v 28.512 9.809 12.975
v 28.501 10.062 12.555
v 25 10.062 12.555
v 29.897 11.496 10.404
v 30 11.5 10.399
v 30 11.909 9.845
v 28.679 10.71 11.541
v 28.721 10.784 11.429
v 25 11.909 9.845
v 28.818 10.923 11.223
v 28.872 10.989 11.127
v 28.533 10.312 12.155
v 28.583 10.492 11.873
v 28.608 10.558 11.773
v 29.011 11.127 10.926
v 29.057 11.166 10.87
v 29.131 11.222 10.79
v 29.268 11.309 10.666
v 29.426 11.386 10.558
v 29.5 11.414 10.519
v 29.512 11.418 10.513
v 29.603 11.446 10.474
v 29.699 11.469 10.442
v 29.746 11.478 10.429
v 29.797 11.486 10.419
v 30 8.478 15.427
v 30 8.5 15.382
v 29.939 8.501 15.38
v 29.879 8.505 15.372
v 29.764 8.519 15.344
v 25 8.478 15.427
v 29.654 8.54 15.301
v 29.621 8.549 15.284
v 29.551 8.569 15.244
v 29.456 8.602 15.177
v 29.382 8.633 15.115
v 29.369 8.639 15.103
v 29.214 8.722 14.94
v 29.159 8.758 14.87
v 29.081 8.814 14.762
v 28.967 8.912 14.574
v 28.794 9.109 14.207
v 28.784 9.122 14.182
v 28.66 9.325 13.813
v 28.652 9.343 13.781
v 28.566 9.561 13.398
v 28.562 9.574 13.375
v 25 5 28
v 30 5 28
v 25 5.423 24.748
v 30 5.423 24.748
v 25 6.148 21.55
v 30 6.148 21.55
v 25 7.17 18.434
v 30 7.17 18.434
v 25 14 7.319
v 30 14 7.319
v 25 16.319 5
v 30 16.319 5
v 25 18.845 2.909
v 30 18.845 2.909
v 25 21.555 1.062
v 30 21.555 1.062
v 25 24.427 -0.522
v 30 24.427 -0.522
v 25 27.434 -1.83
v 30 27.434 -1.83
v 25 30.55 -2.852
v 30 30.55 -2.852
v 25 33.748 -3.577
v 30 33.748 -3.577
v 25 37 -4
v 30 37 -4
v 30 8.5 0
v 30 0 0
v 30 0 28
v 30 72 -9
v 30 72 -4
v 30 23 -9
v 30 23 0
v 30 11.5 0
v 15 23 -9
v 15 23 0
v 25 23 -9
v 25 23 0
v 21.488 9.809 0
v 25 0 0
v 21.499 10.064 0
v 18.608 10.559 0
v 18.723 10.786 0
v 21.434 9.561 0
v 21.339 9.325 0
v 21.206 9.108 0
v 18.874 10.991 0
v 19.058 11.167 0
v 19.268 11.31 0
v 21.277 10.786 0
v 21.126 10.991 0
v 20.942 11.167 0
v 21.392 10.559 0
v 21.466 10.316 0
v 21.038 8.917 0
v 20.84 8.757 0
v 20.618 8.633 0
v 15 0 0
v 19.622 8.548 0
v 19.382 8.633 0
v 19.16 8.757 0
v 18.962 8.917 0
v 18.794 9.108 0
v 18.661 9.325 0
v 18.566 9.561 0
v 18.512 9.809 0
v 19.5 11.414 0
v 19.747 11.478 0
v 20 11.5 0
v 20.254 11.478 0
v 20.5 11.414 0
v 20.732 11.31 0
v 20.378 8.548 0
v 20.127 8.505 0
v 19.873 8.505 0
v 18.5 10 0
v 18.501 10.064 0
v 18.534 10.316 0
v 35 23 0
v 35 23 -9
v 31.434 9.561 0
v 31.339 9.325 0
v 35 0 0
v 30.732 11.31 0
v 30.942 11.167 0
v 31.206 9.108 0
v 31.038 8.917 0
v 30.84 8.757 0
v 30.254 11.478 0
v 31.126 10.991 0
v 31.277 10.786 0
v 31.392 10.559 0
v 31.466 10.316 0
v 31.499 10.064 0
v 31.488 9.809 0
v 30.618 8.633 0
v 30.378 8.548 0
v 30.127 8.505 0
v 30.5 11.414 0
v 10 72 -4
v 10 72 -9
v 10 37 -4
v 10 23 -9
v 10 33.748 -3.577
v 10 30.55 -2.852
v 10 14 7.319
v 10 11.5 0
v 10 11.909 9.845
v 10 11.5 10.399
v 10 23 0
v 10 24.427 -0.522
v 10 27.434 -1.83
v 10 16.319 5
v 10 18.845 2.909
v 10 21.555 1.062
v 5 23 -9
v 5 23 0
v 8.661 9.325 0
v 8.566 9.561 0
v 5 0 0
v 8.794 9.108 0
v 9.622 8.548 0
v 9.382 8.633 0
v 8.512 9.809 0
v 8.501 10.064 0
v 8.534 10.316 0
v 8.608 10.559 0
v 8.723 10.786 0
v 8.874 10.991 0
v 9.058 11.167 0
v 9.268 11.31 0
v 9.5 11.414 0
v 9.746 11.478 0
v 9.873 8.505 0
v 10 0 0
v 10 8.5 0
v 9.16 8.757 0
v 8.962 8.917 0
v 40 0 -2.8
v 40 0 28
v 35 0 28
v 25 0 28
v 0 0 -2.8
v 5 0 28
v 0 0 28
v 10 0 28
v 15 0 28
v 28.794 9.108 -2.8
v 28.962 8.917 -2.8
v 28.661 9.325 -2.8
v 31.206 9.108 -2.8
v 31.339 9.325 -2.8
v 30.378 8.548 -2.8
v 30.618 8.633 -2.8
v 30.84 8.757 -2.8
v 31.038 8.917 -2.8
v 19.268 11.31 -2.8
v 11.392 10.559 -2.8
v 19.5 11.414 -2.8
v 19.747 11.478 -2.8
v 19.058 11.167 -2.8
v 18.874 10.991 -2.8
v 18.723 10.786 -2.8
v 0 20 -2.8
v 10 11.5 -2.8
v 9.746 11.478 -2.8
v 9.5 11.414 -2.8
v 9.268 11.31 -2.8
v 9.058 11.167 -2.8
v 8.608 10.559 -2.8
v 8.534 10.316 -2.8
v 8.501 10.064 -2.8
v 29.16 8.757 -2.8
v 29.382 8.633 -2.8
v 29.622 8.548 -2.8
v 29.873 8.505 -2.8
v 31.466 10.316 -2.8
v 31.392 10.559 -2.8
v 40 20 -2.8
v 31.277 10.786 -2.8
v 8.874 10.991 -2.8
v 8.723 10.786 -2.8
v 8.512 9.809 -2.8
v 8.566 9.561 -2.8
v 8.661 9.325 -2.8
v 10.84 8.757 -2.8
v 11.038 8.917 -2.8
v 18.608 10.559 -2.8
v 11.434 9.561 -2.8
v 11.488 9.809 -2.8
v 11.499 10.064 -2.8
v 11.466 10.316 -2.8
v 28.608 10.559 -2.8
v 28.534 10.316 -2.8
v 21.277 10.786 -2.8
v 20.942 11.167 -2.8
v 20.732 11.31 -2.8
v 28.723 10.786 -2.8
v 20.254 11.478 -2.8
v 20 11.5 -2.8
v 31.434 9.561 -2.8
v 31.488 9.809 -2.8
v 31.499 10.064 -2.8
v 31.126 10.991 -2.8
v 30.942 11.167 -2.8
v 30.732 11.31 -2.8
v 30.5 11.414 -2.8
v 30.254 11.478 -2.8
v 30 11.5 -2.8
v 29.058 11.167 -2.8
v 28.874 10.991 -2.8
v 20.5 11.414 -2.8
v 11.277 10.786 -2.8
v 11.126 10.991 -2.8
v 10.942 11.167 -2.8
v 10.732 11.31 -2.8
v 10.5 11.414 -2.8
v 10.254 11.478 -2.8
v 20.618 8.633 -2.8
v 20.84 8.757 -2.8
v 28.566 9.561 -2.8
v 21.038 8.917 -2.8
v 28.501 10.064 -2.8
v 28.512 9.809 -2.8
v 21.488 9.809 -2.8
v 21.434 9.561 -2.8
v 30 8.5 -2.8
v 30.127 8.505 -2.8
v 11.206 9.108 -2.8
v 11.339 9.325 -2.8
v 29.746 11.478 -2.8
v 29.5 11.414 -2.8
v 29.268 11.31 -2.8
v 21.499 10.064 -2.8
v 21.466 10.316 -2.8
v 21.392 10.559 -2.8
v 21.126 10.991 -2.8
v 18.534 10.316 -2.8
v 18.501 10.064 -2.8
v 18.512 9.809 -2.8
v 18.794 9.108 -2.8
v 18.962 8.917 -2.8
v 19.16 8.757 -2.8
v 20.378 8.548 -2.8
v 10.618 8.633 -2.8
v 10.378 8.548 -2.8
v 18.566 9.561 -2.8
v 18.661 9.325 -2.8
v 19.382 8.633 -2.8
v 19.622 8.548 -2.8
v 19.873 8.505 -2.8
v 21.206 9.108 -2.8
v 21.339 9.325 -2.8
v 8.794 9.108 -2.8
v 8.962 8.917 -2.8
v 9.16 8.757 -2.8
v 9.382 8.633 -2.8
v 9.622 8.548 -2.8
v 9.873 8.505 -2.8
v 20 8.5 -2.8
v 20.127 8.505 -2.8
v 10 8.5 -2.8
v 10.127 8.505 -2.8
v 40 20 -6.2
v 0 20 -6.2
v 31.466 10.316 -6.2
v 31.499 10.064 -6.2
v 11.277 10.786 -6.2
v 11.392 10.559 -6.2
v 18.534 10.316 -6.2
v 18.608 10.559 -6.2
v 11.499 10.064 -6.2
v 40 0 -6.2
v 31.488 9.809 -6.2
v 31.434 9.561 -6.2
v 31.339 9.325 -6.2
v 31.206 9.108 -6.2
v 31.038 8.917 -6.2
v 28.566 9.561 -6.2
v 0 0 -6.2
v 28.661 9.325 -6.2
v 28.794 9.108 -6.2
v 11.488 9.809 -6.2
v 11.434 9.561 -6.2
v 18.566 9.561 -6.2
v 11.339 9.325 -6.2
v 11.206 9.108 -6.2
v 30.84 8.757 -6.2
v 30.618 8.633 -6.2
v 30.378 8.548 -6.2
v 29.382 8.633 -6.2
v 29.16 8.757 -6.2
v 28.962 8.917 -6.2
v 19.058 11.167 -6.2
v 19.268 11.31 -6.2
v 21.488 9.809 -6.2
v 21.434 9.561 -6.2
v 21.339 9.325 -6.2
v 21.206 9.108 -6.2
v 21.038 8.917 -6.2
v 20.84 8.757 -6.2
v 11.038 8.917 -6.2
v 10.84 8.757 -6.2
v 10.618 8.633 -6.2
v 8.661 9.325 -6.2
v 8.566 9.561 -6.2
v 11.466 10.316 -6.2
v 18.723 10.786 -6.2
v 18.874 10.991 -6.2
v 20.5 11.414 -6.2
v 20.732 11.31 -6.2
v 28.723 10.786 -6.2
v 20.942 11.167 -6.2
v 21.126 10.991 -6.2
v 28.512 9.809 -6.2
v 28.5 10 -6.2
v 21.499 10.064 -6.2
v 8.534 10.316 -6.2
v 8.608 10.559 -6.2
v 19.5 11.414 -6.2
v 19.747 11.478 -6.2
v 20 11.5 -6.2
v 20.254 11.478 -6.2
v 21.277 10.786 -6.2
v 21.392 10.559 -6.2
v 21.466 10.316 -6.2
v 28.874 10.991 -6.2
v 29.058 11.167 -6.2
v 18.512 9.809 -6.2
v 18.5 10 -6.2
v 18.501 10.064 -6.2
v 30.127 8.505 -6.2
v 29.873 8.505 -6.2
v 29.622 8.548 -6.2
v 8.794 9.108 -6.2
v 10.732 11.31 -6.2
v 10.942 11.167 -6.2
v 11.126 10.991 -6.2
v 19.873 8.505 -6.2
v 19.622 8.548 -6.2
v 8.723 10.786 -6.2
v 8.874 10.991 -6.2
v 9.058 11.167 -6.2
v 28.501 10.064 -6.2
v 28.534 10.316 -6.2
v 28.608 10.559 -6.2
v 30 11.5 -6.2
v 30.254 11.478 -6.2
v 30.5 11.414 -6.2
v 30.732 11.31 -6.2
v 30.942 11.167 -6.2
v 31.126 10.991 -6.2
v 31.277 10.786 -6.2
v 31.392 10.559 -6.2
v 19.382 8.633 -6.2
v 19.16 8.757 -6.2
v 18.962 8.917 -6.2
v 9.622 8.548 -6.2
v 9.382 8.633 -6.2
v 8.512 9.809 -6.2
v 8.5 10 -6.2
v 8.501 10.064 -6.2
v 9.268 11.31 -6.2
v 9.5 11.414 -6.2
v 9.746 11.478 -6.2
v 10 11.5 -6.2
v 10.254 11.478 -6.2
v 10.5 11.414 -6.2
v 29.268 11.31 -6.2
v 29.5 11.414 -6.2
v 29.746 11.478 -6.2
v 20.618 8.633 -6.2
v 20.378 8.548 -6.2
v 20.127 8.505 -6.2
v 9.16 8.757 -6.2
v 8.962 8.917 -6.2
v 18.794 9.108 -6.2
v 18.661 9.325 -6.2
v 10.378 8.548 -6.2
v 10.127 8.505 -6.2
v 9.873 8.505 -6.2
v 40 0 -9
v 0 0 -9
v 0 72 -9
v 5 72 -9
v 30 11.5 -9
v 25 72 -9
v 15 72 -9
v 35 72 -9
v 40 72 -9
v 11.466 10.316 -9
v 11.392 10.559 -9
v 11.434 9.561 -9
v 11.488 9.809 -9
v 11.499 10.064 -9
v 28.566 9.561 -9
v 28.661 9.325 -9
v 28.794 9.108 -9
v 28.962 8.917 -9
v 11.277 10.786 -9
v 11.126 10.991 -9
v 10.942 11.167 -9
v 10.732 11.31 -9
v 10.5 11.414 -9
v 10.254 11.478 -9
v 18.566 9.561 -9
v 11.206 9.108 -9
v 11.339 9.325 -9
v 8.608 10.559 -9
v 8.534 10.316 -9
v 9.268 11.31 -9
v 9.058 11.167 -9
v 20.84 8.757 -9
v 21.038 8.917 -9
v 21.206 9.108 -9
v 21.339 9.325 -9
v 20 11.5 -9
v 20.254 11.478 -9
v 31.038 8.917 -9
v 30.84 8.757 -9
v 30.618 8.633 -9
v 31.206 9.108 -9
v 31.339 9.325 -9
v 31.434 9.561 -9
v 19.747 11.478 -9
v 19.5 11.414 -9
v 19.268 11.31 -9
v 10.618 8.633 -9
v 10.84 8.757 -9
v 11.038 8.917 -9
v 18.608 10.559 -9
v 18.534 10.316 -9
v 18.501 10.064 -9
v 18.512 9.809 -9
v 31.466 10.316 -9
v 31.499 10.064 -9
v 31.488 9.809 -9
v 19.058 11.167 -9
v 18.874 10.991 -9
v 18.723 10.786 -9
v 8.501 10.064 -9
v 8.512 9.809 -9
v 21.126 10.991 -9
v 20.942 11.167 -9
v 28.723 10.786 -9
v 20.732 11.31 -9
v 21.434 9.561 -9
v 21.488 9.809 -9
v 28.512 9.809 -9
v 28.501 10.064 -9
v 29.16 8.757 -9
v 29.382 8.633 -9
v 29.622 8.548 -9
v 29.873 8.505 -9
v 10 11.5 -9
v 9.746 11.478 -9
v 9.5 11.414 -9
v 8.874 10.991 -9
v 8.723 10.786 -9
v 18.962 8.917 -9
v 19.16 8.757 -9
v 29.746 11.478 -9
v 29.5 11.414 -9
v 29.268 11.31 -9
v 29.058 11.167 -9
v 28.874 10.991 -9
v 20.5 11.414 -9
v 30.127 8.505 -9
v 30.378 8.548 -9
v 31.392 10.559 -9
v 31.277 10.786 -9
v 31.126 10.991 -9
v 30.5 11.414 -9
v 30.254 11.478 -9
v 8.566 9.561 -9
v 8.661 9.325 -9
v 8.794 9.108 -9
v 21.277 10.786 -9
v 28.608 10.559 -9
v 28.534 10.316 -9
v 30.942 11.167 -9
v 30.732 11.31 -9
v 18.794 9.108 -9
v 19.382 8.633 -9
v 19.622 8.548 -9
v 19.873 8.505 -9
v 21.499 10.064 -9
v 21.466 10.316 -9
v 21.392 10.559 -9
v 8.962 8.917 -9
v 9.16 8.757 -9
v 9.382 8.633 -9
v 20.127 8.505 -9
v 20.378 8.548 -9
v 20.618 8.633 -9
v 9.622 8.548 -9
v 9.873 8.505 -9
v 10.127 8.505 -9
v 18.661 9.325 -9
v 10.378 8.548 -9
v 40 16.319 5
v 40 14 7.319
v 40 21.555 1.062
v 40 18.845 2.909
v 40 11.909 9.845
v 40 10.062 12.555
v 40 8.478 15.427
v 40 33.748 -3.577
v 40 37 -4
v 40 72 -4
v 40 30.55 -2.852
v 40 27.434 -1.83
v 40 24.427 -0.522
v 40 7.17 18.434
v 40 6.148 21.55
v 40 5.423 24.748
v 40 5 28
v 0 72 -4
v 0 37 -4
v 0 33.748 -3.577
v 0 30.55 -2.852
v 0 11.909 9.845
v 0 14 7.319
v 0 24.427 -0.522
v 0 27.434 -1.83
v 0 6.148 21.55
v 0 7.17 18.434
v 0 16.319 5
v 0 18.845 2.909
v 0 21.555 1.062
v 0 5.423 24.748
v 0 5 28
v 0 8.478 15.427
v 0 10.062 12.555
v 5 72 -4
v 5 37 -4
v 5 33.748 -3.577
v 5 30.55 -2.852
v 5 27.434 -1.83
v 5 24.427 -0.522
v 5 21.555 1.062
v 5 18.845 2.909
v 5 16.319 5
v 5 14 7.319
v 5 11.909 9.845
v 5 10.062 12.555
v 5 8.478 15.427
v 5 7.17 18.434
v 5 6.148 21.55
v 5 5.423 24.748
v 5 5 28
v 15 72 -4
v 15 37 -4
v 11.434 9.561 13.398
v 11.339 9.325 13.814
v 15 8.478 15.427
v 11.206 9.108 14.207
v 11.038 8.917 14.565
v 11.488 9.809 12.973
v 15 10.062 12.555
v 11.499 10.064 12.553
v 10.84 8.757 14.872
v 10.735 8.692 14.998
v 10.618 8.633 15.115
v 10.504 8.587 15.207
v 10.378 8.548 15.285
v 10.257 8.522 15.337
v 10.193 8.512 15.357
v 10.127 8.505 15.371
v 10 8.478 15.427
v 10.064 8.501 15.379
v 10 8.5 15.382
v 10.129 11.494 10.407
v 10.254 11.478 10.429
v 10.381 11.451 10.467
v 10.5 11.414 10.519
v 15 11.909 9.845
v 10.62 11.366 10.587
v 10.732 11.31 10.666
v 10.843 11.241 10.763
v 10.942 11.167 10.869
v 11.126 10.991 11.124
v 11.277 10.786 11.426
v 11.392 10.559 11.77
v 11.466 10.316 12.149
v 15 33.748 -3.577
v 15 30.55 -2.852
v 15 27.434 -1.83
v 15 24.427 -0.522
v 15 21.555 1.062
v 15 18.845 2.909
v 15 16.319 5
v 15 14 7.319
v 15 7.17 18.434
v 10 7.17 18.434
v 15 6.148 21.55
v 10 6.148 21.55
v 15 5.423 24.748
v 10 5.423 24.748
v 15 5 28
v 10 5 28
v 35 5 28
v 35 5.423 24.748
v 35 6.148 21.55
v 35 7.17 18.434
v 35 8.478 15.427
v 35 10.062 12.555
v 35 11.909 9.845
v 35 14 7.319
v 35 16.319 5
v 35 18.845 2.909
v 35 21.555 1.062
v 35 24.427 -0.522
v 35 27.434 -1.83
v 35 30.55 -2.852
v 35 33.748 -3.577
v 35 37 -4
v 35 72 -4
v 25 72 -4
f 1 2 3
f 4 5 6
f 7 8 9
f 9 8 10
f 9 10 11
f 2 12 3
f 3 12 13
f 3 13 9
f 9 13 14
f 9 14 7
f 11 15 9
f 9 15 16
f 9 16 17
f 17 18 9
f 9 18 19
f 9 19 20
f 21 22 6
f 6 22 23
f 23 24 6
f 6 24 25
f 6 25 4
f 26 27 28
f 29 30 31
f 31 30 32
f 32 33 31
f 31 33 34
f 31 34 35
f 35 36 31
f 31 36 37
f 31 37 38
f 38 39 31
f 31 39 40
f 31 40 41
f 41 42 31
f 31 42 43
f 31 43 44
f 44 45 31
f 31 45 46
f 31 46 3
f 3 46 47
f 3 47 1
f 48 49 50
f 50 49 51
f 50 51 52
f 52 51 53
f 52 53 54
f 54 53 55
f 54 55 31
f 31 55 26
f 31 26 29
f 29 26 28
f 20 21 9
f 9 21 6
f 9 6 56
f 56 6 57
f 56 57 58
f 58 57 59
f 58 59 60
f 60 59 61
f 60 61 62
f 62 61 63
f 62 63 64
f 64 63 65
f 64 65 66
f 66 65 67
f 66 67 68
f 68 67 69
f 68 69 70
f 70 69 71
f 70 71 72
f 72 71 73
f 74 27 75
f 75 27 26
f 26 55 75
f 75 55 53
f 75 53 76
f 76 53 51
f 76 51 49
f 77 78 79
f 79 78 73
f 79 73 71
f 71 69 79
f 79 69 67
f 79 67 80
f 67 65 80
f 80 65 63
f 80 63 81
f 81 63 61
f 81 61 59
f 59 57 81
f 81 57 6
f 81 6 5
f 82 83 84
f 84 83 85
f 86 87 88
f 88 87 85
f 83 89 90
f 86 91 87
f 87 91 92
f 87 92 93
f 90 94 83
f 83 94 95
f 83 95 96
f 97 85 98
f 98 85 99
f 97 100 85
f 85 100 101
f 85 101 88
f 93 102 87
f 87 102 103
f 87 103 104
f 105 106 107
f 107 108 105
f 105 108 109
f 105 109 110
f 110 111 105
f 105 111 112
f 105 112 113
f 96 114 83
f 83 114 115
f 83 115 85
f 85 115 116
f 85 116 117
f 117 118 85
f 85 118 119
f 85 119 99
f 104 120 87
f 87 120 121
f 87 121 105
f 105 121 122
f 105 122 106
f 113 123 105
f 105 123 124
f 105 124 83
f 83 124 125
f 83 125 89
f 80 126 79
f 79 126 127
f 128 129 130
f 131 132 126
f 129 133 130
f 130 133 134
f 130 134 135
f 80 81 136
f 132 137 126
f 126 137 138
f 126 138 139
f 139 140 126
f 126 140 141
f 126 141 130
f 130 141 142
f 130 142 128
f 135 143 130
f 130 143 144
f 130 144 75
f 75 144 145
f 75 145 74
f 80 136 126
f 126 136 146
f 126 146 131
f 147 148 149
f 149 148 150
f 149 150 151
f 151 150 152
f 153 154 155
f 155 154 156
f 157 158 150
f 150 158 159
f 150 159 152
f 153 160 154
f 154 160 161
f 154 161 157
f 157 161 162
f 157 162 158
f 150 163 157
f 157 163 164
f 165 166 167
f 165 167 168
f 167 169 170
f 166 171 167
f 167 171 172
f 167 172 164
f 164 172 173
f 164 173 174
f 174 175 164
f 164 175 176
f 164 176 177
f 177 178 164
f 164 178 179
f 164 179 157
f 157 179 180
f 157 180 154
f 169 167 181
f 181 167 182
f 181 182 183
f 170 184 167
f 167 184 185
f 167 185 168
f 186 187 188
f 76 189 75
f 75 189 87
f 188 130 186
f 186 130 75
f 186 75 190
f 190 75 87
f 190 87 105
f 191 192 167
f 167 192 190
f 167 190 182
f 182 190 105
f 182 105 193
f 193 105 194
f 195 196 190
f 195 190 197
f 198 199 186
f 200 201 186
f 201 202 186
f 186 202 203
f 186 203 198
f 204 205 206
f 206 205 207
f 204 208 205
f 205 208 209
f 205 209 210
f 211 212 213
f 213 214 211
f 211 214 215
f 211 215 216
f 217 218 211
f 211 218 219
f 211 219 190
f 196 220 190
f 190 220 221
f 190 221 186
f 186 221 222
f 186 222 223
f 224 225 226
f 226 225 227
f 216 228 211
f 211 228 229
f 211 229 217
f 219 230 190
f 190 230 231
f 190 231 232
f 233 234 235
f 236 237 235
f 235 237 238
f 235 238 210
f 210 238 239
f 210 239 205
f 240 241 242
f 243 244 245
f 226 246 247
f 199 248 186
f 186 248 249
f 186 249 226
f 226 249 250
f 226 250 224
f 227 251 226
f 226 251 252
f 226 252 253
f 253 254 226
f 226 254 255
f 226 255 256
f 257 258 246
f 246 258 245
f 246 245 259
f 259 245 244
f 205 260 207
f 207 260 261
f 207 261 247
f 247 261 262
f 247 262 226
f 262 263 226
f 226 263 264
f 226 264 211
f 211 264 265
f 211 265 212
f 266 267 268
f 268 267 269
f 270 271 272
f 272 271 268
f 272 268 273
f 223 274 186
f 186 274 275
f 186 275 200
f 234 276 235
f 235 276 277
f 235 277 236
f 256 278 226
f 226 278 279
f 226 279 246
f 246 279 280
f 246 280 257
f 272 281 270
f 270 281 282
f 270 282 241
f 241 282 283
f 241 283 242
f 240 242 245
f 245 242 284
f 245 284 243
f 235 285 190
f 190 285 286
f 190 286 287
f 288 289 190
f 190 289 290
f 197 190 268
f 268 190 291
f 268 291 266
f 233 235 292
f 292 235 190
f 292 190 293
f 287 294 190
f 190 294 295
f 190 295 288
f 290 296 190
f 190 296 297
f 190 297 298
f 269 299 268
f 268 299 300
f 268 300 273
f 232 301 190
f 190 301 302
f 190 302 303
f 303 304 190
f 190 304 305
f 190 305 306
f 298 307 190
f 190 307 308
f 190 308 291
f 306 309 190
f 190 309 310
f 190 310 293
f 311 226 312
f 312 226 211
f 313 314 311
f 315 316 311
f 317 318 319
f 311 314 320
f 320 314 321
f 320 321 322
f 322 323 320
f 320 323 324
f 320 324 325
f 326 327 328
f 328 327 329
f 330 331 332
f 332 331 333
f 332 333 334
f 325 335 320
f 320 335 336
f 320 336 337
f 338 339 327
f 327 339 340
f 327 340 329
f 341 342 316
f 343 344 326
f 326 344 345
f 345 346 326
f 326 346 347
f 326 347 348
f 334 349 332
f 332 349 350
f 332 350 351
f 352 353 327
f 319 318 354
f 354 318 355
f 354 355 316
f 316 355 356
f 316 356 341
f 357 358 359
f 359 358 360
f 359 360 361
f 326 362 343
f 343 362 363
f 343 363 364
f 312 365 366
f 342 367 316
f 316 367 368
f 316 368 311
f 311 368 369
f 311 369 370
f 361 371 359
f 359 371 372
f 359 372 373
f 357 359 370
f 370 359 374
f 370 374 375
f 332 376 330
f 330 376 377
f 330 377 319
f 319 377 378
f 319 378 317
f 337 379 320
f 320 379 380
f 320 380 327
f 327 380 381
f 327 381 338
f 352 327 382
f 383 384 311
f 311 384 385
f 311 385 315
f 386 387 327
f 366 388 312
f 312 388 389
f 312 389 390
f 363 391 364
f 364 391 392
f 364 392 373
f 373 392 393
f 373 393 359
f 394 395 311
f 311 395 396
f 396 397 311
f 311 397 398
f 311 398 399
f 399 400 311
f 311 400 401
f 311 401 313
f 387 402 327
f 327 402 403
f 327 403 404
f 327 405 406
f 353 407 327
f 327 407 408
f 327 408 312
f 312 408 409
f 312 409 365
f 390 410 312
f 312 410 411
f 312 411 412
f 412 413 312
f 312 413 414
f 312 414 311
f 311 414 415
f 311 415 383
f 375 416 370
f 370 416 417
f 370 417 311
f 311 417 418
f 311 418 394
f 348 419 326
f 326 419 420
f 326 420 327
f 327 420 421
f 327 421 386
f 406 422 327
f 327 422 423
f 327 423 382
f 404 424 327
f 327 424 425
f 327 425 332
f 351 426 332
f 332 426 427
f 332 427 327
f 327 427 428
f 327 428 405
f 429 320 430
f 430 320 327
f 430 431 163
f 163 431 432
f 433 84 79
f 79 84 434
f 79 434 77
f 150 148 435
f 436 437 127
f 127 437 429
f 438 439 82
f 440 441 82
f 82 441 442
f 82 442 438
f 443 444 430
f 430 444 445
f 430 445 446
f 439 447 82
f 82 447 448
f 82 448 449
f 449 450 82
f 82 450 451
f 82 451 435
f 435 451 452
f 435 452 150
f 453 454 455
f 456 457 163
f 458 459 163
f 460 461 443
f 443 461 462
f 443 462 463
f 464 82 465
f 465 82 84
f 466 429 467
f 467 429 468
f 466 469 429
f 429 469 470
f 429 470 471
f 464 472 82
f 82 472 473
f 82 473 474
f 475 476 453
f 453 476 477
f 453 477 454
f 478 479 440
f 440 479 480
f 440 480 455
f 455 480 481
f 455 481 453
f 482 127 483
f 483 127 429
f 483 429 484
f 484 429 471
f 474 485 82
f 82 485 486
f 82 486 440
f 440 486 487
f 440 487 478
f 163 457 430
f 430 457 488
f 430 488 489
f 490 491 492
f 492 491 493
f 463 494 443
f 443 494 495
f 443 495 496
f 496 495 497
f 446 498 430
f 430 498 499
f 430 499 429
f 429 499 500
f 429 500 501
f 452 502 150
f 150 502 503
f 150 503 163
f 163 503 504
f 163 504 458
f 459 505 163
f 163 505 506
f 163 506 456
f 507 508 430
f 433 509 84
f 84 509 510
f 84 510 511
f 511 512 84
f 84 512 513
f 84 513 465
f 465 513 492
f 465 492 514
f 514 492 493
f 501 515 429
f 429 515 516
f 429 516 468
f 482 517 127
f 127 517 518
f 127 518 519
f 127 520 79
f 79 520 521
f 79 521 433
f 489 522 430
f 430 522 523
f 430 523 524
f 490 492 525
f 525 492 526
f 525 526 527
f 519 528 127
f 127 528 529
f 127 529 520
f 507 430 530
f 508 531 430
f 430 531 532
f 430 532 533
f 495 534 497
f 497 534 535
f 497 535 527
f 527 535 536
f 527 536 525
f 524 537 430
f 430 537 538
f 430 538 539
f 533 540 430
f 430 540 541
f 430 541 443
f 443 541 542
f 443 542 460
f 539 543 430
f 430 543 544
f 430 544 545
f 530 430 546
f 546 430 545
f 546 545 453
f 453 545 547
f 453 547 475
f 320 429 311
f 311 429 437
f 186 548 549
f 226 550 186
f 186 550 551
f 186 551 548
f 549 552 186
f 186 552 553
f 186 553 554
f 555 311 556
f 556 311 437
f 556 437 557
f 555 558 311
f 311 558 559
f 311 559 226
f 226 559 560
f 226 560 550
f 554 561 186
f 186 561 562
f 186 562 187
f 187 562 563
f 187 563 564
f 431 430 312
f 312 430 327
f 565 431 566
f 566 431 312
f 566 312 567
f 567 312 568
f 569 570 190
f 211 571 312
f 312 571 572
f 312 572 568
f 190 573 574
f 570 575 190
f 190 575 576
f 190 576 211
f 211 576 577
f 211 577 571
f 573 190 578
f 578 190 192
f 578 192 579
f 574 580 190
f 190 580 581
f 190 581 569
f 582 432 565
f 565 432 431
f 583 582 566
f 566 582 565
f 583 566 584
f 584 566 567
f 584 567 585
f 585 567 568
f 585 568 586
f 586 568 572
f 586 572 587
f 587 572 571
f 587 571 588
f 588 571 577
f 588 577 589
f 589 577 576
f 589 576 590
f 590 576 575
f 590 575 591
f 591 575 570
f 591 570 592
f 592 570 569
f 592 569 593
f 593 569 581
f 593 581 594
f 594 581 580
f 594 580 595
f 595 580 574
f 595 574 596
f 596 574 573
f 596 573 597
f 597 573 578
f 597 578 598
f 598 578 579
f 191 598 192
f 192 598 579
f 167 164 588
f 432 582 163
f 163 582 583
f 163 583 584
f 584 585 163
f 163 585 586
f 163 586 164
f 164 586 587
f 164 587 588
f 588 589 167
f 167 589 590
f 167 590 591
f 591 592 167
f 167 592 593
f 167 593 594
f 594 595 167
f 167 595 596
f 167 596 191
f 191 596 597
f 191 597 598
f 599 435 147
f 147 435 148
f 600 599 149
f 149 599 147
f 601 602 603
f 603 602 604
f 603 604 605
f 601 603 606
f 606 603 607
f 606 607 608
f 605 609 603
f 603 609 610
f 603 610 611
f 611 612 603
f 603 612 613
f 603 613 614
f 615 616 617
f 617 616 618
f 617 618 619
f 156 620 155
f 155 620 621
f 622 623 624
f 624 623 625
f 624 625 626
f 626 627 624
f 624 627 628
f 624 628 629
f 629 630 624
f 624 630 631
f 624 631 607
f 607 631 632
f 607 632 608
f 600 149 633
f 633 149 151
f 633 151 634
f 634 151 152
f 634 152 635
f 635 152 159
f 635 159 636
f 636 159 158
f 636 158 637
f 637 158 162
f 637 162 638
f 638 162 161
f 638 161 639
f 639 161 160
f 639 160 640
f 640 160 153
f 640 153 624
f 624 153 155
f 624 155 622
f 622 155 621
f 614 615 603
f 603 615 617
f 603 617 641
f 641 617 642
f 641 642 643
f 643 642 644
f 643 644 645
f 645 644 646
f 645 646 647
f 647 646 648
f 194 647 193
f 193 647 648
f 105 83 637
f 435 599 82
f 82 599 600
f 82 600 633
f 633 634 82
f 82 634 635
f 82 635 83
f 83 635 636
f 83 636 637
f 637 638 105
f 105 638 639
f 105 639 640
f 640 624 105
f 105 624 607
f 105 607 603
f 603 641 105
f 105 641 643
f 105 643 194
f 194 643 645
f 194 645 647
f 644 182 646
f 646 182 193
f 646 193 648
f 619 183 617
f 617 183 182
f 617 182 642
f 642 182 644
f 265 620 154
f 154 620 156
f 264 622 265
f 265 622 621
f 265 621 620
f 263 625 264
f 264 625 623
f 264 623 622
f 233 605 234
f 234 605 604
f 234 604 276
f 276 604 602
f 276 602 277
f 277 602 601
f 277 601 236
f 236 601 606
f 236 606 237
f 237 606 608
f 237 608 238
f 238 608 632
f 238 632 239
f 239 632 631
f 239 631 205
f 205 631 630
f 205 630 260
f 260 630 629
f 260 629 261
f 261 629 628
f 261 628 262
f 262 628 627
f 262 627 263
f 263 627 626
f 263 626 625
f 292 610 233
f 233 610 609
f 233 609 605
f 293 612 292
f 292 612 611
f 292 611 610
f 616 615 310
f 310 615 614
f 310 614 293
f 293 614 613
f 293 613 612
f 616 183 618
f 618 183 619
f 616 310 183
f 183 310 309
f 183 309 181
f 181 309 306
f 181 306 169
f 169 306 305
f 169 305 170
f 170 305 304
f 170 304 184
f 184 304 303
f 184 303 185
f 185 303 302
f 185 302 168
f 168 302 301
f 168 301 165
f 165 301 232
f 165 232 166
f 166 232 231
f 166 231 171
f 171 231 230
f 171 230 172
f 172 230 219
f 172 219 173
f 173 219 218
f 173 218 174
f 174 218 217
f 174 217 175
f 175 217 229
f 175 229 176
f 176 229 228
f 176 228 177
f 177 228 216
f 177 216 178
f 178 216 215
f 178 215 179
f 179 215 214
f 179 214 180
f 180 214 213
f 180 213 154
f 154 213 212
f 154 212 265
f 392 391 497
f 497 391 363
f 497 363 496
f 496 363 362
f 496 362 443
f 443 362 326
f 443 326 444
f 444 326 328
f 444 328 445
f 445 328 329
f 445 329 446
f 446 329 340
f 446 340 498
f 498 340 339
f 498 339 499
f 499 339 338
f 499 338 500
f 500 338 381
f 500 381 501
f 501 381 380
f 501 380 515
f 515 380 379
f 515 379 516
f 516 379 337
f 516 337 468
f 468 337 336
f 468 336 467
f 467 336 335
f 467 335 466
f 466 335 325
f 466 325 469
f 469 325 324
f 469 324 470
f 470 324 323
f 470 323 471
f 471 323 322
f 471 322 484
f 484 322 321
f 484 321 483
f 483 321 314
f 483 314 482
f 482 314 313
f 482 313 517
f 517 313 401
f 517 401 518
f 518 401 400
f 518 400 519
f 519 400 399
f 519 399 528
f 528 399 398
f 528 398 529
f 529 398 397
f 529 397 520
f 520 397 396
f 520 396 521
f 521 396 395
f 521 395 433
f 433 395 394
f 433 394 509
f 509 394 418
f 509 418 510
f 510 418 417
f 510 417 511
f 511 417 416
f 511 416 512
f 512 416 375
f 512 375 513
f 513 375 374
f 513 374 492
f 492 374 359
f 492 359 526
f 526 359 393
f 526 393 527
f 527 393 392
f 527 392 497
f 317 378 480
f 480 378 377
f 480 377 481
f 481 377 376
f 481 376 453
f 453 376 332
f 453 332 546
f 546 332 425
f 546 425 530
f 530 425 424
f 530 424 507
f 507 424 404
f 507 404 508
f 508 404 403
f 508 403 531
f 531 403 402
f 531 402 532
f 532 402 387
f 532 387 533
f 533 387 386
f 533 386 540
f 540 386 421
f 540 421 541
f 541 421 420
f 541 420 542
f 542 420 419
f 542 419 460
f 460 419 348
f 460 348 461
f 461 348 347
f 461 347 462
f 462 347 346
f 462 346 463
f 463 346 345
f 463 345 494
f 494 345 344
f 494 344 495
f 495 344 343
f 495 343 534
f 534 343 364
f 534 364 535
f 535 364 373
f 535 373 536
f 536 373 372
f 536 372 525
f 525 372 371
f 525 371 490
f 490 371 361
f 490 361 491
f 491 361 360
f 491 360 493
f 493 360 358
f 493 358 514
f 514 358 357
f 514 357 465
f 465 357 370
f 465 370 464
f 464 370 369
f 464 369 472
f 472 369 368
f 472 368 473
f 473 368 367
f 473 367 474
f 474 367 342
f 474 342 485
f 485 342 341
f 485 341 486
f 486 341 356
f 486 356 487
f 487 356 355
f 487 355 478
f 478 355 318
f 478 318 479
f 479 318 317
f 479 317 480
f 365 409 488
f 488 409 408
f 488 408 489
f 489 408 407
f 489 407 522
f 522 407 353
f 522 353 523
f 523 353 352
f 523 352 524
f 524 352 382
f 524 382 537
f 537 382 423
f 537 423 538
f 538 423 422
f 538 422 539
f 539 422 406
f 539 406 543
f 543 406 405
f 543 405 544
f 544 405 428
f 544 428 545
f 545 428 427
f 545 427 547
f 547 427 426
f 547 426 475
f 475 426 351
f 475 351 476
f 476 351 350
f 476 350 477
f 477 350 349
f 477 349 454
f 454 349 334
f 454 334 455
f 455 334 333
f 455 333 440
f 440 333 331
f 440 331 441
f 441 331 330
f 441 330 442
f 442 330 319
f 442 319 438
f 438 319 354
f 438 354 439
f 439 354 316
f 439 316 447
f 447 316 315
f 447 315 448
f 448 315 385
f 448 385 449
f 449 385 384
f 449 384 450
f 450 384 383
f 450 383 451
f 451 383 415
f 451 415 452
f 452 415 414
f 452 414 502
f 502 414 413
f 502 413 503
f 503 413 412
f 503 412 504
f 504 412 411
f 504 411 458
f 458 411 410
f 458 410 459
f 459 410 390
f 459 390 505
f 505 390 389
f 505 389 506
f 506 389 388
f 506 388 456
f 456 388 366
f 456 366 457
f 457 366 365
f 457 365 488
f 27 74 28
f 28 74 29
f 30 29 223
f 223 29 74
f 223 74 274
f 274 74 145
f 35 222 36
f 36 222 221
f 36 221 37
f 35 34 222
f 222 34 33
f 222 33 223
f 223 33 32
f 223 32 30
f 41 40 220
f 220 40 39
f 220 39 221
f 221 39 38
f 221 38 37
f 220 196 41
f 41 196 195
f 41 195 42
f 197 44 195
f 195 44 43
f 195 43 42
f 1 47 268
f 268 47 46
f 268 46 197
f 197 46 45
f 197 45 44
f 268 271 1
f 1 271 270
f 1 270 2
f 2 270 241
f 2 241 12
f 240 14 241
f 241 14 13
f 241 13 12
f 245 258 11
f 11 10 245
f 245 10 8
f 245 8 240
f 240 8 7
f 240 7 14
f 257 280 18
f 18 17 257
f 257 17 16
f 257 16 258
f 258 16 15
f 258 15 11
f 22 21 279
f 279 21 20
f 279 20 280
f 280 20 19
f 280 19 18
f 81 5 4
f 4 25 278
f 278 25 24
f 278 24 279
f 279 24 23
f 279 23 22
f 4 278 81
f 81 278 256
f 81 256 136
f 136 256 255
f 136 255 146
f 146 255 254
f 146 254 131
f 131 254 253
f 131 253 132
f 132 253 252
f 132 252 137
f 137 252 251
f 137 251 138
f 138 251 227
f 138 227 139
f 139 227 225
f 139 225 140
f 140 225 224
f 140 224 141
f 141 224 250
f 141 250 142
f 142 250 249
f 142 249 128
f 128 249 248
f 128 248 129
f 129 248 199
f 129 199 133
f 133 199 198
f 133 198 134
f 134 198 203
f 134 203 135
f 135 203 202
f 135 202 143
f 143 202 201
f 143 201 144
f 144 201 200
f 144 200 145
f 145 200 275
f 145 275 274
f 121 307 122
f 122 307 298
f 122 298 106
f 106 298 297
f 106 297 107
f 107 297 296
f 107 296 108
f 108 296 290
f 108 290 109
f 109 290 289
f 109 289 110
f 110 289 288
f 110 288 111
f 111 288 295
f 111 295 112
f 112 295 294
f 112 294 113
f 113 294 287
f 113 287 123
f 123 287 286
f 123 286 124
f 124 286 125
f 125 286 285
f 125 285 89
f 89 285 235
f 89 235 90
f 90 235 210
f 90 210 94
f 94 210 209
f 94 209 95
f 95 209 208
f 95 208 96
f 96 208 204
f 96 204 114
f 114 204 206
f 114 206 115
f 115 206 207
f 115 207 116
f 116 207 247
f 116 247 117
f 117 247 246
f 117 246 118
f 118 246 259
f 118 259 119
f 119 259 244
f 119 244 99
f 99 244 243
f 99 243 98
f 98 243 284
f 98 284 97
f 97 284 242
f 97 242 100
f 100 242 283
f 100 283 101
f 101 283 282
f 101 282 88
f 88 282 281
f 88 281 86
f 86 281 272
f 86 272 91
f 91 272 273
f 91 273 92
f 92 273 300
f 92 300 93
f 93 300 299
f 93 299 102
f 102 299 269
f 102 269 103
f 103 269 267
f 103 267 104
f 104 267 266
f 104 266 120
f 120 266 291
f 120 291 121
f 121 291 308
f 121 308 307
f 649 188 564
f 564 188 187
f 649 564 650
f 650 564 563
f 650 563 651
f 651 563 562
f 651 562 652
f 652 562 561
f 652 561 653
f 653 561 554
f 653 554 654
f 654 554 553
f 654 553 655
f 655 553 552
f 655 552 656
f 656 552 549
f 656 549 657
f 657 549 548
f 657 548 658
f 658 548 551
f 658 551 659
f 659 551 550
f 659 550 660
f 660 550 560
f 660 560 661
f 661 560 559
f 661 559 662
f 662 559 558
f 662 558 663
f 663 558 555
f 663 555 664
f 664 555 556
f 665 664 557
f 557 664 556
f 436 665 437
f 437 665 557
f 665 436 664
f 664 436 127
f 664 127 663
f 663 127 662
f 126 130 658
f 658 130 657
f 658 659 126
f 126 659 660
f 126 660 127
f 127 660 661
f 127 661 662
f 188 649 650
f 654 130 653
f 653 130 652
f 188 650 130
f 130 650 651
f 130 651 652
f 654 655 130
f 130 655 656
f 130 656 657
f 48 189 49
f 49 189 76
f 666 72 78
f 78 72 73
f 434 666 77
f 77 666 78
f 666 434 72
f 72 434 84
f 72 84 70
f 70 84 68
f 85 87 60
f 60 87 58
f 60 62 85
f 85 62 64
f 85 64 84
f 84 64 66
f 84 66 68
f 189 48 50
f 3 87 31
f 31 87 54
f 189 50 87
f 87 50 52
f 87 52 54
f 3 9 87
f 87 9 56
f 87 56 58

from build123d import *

# Parameters (mm, degrees)
BOSS_EXTRUDE1_DEPTH = 40
BOSS_EXTRUDE2_DEPTH = 5
LPATTERN1_COUNT     = 2
LPATTERN1_PITCH     = 10
SKETCH4_R           = 1.5
CUT_EXTRUDE2_DEPTH  = 91.293964361


# Read off the part's stored shape, not the designer's step: Mirror1
with BuildPart() as part:
    # Sketch1 → Boss-Extrude1 (new body)
    with BuildSketch(Plane(origin=(0, 0, 0), x_dir=(0, 0, -1), z_dir=(1, 0, 0))):
        Polygon((0, 0), (0, 23), (9, 23), (9, 0), (6.2, 0), (6.2, 20), (2.8, 20), (2.8, 0), align=None)
    extrude(amount=BOSS_EXTRUDE1_DEPTH)

    # Sketch3 → Boss-Extrude2 (add)
    with BuildSketch(Plane.ZY):
        with BuildLine():
            Line((0, 0), (28, 0))
            Line((28, 0), (28, 5))
            ThreePointArc((28, 5), (6.132470247, 15.132470247), (-4, 37))
            Line((-4, 37), (-4, 72))
            Line((-4, 72), (-9, 72))
            Line((-9, 72), (-9, 37))
            Line((-9, 37), (-9, 23))
            Line((-9, 23), (0, 23))
            Line((0, 23), (0, 0))
        make_face()
    boss_extrude2 = extrude(amount=-BOSS_EXTRUDE2_DEPTH)

    # LPattern1: Boss-Extrude2 ×2
    with Locations(*[(i * LPATTERN1_PITCH, 0, 0) for i in range(1, LPATTERN1_COUNT)]):
        add(boss_extrude2)

    # Sketch4 → Cut-Extrude2 (cut, through all)
    with BuildSketch(Plane(origin=(0, 0, -9), x_dir=(-1, 0, 0), z_dir=(0, 0, -1))):
        with Locations(Location((-10, 10, 0), (0, 0, 270))):
            Circle(SKETCH4_R)
        with Locations(Location((-20, 10, 0), (0, 0, 90))):
            Circle(SKETCH4_R)
        with Locations(Location((-30, 10, 0), (0, 0, 90))):
            Circle(SKETCH4_R)
    extrude(amount=-CUT_EXTRUDE2_DEPTH, mode=Mode.SUBTRACT)

    # Mirror1: part across plane


with BuildPart() as part_1:
    add(part.part)
    add(part.part.mirror(Plane.ZY.offset(-20)))


solid = part_1.part
